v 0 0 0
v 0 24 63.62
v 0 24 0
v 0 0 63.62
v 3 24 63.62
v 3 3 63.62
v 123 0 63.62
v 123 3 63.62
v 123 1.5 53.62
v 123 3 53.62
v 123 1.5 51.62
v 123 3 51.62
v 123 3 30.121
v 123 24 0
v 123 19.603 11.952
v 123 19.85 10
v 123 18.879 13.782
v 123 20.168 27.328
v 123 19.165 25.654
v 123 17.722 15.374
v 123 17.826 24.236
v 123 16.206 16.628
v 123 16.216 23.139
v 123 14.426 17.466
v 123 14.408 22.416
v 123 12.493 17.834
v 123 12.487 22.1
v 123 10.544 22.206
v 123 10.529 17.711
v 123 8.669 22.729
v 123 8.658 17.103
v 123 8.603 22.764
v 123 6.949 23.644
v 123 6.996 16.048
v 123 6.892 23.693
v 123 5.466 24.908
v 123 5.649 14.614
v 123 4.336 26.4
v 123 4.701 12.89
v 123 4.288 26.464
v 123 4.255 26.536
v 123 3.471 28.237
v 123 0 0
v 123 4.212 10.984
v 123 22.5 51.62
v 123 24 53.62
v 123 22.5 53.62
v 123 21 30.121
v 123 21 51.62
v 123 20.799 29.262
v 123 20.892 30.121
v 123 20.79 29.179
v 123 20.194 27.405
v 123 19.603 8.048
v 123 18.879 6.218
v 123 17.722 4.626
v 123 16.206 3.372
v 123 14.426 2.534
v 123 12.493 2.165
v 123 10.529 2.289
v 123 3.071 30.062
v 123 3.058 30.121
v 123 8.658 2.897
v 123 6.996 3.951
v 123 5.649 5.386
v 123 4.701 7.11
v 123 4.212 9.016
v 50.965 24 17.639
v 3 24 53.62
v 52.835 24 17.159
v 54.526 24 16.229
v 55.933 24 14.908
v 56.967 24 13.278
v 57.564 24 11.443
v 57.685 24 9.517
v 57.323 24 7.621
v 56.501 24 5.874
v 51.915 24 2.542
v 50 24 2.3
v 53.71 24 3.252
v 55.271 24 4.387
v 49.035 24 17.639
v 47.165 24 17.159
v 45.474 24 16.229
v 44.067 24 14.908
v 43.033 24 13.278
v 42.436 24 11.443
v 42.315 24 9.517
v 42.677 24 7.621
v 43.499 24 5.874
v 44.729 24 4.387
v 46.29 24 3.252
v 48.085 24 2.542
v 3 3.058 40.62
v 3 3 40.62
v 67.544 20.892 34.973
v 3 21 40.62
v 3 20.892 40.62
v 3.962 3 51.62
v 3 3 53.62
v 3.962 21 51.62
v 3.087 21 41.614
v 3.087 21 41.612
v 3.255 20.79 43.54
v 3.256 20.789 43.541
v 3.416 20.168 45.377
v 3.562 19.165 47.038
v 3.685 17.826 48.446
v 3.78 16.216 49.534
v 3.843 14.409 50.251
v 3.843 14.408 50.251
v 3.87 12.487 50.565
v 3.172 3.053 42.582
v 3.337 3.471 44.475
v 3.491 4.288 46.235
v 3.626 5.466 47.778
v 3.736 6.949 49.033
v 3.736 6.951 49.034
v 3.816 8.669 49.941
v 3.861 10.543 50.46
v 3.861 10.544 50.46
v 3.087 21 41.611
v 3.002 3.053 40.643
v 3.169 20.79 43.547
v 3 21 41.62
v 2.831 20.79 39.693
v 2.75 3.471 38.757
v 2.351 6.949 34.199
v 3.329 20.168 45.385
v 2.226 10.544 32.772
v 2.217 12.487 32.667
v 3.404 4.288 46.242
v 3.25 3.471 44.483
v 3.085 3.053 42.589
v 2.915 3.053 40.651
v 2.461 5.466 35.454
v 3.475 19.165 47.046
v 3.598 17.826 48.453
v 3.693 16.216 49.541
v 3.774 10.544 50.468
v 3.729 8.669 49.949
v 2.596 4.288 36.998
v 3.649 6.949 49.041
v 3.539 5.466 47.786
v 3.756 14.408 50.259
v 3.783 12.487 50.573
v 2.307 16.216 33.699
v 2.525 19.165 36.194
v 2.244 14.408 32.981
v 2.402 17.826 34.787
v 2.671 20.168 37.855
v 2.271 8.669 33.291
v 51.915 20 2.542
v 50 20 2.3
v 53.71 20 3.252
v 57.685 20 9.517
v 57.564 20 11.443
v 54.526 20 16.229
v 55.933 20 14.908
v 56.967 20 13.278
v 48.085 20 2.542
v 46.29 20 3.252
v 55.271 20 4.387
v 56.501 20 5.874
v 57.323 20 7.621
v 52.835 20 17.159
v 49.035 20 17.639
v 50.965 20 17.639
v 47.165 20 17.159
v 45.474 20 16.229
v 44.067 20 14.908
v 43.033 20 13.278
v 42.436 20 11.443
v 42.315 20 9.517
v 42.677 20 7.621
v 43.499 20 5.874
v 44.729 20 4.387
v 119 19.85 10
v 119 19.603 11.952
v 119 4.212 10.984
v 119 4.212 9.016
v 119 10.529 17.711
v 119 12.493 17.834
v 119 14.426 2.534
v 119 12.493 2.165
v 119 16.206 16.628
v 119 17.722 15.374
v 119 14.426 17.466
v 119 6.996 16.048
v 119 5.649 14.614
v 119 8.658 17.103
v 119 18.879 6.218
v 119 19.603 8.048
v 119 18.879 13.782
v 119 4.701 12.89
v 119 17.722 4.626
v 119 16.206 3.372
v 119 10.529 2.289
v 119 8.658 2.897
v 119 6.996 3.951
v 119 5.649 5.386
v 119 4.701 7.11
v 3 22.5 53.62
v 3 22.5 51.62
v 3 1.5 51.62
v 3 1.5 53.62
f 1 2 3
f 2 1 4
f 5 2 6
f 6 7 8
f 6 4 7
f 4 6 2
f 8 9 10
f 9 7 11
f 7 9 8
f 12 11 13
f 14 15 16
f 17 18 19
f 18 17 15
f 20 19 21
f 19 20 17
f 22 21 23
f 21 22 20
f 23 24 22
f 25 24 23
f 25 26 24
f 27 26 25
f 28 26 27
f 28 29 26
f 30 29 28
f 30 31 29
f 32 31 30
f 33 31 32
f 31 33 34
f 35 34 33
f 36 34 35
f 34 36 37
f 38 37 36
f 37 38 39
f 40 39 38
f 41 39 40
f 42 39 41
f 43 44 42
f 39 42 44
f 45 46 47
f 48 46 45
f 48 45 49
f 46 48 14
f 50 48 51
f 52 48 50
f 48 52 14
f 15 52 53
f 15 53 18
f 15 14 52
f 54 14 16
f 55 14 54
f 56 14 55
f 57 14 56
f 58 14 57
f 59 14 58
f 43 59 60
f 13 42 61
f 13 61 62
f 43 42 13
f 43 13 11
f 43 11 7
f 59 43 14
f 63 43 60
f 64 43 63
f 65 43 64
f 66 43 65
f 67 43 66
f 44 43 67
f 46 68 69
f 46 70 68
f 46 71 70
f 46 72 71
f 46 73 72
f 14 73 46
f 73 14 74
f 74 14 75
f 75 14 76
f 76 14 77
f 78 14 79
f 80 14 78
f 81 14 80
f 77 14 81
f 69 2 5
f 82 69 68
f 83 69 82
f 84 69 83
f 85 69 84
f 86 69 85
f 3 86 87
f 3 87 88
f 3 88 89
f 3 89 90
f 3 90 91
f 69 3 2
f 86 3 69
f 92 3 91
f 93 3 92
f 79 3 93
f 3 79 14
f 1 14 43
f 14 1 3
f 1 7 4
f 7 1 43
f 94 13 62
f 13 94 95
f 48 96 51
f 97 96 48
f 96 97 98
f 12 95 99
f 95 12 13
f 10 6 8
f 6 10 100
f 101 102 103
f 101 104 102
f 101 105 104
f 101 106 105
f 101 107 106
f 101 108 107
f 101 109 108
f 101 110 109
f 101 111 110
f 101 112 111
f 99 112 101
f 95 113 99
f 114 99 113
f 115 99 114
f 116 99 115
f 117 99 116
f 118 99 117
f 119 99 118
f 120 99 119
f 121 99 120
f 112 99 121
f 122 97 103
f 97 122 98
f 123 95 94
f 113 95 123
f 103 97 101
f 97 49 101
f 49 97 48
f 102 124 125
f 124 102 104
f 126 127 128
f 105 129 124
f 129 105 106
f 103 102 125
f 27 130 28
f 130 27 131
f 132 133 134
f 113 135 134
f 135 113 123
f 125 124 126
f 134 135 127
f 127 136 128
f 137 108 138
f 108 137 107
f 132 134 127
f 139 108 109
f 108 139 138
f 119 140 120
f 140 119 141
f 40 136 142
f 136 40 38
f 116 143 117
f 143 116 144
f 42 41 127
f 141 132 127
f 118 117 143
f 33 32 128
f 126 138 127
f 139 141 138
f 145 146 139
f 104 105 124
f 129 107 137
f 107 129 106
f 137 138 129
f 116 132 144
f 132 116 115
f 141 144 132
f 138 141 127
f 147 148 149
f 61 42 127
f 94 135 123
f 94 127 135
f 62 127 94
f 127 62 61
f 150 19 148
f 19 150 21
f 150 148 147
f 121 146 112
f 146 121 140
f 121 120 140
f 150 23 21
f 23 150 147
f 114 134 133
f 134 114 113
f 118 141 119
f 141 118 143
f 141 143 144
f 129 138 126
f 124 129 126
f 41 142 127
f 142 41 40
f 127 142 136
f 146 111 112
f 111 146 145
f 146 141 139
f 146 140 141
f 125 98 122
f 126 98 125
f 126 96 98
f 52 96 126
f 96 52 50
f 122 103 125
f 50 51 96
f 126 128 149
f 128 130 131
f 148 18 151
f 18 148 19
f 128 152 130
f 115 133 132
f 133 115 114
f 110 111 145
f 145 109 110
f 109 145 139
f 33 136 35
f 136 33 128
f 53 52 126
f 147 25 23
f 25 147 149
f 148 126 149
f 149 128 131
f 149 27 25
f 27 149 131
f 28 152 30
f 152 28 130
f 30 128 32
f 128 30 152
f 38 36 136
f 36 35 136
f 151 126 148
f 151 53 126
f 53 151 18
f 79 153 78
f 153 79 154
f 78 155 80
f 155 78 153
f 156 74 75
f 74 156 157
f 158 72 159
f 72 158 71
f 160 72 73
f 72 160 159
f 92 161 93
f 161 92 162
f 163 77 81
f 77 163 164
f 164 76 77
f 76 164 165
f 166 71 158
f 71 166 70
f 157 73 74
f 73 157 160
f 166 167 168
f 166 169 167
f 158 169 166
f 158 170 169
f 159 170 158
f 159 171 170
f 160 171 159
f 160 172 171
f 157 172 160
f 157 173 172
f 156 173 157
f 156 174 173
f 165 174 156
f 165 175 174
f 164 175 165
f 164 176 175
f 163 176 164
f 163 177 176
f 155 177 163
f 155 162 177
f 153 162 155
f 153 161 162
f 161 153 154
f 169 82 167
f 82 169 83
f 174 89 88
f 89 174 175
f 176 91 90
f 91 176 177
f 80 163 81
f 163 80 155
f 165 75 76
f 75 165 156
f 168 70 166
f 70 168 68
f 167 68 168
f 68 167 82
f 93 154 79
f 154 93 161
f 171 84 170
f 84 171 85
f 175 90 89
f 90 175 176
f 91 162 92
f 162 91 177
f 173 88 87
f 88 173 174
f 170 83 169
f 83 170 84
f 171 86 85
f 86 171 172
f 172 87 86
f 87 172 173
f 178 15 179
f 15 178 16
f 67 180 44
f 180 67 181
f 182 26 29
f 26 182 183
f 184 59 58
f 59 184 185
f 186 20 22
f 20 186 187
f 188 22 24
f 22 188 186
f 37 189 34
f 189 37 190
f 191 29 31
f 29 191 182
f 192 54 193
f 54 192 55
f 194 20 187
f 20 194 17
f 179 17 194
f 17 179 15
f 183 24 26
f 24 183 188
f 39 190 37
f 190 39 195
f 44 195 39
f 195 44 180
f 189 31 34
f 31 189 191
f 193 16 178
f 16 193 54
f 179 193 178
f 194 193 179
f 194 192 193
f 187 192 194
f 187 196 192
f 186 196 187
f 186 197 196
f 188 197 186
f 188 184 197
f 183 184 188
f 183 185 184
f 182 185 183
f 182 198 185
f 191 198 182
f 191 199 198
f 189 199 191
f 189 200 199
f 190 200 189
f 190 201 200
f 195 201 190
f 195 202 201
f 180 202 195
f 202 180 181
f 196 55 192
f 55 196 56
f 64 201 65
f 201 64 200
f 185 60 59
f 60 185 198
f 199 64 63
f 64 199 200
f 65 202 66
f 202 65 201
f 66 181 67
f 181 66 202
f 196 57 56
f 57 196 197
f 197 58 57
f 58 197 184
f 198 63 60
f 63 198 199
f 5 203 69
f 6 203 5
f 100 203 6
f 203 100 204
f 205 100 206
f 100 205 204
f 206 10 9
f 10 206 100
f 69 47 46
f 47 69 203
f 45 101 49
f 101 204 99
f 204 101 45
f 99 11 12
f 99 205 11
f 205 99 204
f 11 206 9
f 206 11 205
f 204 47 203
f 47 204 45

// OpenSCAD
// file: PotionExplosionMarbleHiddenTrackCore.scad
//TODO: Get correct length
length = 123;
diameter = 18;
wallThickness = 3;
angle = 5;
floorThickness = 10;
heightStepDown = .2;
offset = diameter + 5;
height = 40.42 + heightStepDown + offset;
washerDiameter = 16.25;
washerHeight = 1.4;
washerHeightOffset = 1;
magnetHeightOffset = 1;
magnetBaseInnerDiameter = 15.4;
frontMagnetBaseInnerDiameter = magnetBaseInnerDiameter + .3;
magnetHeight = 4.0;
width = diameter + wallThickness * 2;
centerOfConnectorX = 50;
centerOfConnectorY = 10;
centerOfBackConnectorX = width/2;
echo(centerOfBackConnectorX);
lidHeight = 2;
backstopHeight = 10;

module Track(useLeftConnector, useRightConnector) {
    difference(){

        cube([length, width, height]);
        
        translate([wallThickness, wallThickness, height - offset])
            rotate([0, angle, 0])
                cube([length + wallThickness, width - wallThickness * 2, height]);
        
        translate([wallThickness, diameter/2 + wallThickness, height - offset + 1 ])
            rotate([90 + angle, 0, 90])
                cylinder(length + 3, d=diameter);
        if(useLeftConnector)
            translate([centerOfConnectorX, washerHeight, centerOfConnectorY])
                rotate([90, 90, 0])
                    cylinder(washerHeight, d=washerDiameter);
        if(useRightConnector)
        translate([centerOfConnectorX, width, centerOfConnectorY])
            rotate([90, 90, 0])
                cylinder(magnetHeight, d=magnetBaseInnerDiameter);
        
    //    translate([0, centerOfBackConnectorX, centerOfConnectorY])
    //        rotate([90, 0, 90])
    //            cylinder(magnetHeight, d=magnetBaseInnerDiameter);
        
        translate([length - magnetHeight, centerOfBackConnectorX, centerOfConnectorY])
            rotate([90, 0, 90])
                cylinder(magnetHeight, d=frontMagnetBaseInnerDiameter);


        translate([wallThickness,wallThickness/2,height - (backstopHeight + lidHeight)])
            cube([length,width - wallThickness,lidHeight]);
    }

    //translate([length, 0, 0])
    //    import("C:/Code/Git/3DPrint/PotionExplosionMarbleTrack.stl");

}
// main file
include<PotionExplosionMarbleHiddenTrackCore.scad>

difference(){

    Track(false, true);
    translate([wallThickness,wallThickness,height - backstopHeight])
        cube([length,width,backstopHeight]);

}
